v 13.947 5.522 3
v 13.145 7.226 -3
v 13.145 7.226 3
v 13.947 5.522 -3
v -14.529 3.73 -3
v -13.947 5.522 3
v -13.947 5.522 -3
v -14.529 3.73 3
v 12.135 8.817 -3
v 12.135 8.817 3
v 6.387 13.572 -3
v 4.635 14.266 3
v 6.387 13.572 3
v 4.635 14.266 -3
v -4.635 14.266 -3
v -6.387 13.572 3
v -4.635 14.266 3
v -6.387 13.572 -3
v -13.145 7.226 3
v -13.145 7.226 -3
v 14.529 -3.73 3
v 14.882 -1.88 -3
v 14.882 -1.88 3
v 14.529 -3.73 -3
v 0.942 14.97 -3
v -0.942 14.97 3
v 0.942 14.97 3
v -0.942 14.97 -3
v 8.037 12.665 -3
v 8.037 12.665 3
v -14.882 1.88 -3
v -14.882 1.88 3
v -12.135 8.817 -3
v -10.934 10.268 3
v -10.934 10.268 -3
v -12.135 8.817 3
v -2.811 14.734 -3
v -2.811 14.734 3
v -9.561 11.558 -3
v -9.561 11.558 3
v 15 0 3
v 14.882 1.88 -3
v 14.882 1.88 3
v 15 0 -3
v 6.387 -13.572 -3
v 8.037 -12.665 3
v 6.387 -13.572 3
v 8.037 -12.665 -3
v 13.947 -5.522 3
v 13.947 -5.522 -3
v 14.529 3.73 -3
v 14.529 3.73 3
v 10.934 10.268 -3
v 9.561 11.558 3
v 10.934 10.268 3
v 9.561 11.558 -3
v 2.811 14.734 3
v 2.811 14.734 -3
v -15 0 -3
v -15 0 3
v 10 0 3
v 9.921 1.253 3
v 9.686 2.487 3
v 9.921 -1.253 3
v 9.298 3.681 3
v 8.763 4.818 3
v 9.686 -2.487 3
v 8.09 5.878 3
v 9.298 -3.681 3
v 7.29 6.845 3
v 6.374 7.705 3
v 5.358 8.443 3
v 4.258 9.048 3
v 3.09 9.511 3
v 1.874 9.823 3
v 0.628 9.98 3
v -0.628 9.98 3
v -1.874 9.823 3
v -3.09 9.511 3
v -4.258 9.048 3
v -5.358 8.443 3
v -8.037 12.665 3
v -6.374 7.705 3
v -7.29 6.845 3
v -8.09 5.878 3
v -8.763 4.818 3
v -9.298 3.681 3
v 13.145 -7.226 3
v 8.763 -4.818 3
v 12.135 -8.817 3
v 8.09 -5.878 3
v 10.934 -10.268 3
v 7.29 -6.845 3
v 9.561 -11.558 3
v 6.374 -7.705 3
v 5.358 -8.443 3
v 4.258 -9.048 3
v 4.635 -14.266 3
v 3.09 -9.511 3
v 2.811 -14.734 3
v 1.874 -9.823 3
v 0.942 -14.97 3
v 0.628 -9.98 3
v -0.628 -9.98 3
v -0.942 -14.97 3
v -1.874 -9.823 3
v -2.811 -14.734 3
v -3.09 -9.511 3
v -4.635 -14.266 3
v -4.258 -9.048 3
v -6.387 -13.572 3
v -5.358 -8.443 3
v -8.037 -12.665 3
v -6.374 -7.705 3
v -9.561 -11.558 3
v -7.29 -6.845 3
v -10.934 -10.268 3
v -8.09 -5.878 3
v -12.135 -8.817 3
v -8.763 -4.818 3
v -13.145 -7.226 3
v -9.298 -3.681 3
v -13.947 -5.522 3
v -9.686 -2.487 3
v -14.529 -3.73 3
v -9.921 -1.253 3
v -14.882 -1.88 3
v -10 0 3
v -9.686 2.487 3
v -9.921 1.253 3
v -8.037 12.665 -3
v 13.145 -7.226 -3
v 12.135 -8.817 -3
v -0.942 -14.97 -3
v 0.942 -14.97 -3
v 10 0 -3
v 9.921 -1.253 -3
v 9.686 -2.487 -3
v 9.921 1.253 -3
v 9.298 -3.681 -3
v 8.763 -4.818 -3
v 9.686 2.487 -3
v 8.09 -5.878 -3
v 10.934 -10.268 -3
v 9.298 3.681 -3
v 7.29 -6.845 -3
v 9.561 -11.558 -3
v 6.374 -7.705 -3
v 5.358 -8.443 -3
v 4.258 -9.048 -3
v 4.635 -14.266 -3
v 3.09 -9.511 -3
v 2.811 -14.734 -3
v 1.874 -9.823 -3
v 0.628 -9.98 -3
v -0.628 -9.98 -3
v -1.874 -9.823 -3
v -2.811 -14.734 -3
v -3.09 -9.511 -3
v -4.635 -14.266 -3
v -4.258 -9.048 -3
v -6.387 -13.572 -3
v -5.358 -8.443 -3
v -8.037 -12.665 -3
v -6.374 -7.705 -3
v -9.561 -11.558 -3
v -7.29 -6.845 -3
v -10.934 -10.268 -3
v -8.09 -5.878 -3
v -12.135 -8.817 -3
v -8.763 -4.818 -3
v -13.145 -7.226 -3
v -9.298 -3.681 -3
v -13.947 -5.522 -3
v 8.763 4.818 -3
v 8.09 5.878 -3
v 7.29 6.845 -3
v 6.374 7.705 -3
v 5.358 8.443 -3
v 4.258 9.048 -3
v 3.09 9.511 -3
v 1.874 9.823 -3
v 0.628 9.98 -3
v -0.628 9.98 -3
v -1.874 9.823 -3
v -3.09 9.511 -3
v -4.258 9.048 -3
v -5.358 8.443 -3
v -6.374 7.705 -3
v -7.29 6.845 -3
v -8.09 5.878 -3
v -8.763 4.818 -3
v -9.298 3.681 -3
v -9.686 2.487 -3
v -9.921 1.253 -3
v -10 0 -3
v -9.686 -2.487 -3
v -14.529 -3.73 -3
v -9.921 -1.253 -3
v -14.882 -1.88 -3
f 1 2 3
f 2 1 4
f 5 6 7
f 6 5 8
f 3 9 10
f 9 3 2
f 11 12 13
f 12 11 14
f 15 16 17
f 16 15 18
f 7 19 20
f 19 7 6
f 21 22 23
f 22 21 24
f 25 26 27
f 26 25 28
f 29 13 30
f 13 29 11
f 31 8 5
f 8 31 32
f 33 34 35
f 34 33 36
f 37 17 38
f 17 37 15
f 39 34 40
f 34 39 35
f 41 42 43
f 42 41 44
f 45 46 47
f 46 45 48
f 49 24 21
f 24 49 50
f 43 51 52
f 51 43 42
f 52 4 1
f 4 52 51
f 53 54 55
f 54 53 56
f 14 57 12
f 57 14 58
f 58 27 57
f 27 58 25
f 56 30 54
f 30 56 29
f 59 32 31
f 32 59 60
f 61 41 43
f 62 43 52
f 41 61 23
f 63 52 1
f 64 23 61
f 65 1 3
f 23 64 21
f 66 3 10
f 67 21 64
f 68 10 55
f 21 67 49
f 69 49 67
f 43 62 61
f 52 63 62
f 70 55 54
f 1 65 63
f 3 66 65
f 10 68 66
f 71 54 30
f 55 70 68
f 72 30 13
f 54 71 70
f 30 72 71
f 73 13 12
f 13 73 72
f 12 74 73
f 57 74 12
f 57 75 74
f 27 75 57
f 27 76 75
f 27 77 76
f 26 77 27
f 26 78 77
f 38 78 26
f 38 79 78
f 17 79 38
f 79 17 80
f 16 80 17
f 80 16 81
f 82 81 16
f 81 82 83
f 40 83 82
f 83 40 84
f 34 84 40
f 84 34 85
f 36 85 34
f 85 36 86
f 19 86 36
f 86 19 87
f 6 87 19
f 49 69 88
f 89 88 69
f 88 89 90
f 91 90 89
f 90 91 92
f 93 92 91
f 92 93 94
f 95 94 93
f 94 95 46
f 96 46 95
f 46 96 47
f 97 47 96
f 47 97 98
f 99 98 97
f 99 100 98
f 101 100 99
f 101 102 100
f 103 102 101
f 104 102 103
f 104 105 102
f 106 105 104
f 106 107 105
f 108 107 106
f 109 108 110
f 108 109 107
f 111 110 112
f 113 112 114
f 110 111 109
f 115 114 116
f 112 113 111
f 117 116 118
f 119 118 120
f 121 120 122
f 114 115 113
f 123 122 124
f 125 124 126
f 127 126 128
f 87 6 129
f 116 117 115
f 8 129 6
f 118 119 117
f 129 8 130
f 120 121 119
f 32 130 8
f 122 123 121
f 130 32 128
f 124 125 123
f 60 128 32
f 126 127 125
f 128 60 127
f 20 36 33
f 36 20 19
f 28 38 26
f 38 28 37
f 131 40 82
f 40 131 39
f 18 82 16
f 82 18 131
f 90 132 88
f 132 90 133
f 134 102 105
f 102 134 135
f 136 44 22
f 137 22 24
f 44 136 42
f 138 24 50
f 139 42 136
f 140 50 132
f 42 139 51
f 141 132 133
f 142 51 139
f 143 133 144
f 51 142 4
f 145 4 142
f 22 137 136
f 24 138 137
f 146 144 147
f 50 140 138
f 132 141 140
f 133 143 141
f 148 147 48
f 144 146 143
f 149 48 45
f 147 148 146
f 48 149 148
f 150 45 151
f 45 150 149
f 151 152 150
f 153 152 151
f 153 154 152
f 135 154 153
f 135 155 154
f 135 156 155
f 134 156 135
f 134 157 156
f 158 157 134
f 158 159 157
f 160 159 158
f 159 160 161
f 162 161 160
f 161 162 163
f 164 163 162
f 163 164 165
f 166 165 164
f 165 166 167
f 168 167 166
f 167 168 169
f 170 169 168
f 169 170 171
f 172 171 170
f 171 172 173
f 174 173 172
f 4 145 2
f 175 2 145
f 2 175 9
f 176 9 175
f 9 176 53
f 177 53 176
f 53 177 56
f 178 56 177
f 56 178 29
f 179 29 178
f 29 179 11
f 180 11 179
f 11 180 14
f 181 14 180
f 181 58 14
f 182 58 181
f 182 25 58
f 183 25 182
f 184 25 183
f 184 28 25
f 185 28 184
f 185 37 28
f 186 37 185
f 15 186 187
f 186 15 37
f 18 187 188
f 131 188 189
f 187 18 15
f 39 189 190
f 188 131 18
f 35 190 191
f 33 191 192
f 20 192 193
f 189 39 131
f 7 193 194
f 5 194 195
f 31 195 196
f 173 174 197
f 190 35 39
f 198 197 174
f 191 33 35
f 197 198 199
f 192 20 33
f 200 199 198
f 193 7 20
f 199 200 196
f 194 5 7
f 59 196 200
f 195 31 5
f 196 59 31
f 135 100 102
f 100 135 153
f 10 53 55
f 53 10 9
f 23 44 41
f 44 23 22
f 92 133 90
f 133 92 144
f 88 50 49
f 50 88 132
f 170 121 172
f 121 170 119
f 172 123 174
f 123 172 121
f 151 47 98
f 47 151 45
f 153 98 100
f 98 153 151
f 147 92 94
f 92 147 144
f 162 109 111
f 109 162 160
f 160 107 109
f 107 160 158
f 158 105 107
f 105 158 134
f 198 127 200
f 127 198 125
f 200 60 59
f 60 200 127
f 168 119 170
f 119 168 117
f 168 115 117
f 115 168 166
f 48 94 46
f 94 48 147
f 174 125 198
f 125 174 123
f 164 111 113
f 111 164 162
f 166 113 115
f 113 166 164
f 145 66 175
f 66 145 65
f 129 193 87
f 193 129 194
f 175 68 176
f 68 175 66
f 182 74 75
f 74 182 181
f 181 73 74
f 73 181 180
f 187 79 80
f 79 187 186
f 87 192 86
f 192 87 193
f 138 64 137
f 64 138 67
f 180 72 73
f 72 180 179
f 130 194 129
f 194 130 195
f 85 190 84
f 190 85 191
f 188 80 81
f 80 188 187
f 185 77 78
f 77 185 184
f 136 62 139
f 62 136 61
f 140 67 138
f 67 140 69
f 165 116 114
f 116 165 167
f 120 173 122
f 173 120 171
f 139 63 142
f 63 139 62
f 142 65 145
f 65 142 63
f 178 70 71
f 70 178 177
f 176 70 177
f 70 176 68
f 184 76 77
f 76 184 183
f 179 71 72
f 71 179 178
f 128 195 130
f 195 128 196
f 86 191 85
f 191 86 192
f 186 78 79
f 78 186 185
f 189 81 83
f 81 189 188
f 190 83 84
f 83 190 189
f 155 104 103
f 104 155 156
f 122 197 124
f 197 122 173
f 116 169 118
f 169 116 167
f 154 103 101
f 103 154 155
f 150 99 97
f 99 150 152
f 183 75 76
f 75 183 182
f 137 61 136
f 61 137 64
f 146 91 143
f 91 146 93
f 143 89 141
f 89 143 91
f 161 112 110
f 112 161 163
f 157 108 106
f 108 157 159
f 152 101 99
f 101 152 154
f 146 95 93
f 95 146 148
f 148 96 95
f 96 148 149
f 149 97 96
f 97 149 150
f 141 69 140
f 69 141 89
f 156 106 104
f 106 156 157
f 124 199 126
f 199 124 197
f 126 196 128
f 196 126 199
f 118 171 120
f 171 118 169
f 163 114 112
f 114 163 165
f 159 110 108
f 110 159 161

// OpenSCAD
$fn = 50;


difference() {
	union() {
		translate(v = [0, 0, -3.0000000000]) {
			cylinder(h = 6, r = 15.0000000000);
		}
	}
	union() {
		translate(v = [0, 0, -100.0000000000]) {
			cylinder(h = 200, r = 10);
		}
	}
}
